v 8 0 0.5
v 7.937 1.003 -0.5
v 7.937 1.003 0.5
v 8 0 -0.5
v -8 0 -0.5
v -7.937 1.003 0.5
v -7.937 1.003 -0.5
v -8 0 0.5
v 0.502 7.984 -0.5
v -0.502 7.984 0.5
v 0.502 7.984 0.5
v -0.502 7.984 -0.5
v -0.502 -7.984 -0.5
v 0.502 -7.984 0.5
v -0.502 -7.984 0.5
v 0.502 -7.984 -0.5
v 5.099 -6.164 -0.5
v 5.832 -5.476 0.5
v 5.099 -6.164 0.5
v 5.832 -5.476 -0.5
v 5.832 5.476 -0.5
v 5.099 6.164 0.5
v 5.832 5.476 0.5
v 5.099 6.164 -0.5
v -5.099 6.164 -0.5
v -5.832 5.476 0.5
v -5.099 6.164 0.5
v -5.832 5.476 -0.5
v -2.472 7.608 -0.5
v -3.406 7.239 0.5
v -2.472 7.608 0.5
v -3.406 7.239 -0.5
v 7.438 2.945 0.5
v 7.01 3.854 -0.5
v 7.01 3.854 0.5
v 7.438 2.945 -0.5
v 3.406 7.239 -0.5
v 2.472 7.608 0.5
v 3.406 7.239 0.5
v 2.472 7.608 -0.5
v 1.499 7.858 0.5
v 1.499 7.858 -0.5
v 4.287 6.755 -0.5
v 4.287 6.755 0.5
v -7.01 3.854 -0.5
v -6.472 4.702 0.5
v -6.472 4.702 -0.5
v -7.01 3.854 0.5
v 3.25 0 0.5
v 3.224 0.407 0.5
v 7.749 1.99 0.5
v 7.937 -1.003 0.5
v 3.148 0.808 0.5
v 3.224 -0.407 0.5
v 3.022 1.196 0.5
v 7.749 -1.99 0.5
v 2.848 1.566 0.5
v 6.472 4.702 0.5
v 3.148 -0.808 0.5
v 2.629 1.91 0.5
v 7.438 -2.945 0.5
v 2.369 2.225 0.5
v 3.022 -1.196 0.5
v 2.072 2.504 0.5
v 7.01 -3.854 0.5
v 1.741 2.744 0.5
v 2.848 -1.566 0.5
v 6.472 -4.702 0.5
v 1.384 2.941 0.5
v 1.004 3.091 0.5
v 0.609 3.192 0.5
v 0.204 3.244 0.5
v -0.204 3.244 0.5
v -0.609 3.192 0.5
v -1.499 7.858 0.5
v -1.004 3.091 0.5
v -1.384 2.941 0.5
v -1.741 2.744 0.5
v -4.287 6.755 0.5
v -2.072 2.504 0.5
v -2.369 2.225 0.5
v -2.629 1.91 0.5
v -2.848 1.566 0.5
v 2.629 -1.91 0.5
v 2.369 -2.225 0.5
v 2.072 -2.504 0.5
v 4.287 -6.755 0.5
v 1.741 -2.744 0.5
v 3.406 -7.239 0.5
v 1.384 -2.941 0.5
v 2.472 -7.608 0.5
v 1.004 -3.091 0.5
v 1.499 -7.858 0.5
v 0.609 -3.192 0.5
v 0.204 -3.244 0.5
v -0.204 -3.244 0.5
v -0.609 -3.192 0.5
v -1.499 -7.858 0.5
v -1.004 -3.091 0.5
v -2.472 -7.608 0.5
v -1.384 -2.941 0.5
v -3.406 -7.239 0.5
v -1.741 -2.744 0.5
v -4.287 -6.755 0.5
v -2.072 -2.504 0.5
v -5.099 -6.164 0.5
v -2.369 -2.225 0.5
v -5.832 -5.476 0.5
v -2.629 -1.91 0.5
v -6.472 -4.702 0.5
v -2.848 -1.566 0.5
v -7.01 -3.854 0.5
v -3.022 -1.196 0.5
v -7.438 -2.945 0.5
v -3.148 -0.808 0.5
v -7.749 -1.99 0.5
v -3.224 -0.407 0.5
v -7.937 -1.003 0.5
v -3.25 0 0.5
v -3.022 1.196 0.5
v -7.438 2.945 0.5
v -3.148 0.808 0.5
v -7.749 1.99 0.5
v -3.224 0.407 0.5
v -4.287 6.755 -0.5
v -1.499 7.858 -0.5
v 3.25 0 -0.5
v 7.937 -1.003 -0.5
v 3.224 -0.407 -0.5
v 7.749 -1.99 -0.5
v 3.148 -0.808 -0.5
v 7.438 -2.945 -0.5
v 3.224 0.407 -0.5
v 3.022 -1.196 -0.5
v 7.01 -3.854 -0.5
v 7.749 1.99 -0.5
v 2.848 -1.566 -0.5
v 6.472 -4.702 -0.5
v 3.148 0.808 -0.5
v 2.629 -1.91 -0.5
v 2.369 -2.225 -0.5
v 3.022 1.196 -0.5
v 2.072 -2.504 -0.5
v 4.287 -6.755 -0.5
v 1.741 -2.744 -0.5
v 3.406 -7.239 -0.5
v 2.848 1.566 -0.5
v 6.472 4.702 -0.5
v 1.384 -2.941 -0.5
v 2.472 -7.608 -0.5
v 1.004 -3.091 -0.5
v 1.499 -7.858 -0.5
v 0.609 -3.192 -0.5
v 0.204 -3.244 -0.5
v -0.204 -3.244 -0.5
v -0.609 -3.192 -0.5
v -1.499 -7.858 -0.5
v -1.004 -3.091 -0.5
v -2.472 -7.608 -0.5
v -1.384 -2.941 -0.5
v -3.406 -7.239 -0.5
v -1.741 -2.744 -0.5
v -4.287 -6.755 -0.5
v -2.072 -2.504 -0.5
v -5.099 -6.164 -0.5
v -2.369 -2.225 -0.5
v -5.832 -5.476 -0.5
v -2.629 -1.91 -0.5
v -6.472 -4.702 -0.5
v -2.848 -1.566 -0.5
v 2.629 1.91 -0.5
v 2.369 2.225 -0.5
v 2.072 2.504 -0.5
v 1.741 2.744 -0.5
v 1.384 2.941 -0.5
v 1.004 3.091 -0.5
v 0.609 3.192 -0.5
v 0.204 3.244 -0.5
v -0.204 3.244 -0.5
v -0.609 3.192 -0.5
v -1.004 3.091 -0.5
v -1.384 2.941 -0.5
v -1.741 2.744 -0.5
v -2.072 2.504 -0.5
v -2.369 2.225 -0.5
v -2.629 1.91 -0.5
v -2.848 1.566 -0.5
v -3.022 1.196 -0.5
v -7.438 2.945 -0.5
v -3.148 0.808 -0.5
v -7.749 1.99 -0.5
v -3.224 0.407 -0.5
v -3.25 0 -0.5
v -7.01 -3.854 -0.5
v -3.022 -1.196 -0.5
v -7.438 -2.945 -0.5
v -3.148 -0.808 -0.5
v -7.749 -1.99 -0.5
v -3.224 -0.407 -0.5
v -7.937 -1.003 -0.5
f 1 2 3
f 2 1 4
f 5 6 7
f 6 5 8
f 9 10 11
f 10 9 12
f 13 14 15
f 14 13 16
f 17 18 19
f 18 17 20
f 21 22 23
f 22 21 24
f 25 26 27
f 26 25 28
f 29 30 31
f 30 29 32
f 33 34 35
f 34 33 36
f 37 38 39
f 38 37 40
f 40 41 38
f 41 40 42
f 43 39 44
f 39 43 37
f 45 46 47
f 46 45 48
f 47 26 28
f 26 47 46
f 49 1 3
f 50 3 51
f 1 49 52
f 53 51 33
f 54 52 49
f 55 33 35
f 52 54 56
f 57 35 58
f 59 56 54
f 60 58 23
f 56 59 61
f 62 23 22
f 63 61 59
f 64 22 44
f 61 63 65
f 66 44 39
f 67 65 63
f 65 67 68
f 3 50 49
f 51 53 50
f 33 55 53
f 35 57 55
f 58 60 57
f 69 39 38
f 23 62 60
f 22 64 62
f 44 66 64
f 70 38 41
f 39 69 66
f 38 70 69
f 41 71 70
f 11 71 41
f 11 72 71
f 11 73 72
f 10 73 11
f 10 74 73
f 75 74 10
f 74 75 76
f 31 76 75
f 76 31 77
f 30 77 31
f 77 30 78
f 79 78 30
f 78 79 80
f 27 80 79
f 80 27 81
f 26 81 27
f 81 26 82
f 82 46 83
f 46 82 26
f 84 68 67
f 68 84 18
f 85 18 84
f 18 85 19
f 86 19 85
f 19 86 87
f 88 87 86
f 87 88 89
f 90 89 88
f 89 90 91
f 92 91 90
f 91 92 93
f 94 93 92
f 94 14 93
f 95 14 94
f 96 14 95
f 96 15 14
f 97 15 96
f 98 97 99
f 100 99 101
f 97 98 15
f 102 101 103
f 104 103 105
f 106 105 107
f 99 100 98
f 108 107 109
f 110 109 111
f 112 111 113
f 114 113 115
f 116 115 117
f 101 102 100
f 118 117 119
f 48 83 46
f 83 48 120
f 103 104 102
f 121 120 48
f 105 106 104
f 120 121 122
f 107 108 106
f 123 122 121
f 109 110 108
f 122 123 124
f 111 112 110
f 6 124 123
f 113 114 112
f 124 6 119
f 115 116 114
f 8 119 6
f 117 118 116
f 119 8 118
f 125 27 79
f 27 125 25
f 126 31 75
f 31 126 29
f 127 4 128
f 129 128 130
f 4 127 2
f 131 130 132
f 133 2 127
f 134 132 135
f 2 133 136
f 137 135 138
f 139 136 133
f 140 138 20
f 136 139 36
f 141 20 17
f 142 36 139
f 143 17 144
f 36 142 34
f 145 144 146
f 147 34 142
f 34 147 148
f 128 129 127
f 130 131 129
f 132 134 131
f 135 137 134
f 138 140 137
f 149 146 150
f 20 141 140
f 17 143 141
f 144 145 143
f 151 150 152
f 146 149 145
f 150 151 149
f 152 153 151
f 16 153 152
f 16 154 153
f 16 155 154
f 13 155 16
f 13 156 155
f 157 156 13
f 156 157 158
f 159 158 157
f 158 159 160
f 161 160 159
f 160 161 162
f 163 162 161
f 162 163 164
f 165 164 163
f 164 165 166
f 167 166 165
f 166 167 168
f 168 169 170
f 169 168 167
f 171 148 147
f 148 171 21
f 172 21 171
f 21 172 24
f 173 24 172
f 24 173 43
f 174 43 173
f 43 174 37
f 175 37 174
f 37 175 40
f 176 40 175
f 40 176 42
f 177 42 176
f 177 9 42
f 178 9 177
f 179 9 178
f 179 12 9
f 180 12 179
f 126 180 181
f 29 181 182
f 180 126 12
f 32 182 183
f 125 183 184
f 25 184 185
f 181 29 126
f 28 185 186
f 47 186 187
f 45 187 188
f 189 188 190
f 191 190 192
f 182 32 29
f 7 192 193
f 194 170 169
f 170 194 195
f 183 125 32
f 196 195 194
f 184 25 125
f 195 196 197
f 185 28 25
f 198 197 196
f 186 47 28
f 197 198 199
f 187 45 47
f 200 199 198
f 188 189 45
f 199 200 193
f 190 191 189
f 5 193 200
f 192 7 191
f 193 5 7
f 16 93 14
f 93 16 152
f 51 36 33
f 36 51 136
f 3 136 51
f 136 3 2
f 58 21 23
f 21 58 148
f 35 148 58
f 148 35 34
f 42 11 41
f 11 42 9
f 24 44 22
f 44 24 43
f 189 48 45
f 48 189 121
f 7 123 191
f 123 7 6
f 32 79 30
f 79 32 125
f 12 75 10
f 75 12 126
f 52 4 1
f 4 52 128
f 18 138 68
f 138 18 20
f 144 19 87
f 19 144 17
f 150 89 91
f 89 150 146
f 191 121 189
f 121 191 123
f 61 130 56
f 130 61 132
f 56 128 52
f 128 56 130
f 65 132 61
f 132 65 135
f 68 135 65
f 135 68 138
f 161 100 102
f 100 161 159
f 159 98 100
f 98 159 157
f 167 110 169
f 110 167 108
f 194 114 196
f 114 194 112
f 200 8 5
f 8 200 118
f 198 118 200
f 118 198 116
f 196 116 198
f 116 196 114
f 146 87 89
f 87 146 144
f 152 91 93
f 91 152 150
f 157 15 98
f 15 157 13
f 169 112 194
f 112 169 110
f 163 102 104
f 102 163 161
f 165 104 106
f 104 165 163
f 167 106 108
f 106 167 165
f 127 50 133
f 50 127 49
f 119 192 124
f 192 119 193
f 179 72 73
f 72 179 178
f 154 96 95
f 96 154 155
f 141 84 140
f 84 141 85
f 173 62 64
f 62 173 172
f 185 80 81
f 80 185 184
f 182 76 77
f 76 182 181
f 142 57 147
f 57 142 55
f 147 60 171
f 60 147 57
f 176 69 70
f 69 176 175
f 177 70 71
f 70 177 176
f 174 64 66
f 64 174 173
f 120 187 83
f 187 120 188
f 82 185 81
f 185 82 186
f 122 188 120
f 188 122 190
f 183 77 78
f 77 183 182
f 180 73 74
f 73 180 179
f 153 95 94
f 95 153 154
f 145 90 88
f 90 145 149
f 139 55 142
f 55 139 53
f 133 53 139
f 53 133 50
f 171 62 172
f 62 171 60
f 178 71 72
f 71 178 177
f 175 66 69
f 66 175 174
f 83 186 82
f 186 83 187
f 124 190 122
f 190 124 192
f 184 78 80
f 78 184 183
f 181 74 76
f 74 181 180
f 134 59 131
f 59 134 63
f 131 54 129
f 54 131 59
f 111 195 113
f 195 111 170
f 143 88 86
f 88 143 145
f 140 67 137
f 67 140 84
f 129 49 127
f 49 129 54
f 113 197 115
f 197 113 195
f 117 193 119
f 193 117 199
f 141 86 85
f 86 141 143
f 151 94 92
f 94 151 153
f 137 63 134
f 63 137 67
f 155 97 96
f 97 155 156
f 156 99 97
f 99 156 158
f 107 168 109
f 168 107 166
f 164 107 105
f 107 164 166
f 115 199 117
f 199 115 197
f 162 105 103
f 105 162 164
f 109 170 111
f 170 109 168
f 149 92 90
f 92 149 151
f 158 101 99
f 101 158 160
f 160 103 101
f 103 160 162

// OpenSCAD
$fn = 50;


difference() {
	union() {
		translate(v = [0, 0, -0.5000000000]) {
			cylinder(h = 1, r = 8.0000000000);
		}
	}
	union() {
		translate(v = [0, 0, -100.0000000000]) {
			cylinder(h = 200, r = 3.2500000000);
		}
	}
}
